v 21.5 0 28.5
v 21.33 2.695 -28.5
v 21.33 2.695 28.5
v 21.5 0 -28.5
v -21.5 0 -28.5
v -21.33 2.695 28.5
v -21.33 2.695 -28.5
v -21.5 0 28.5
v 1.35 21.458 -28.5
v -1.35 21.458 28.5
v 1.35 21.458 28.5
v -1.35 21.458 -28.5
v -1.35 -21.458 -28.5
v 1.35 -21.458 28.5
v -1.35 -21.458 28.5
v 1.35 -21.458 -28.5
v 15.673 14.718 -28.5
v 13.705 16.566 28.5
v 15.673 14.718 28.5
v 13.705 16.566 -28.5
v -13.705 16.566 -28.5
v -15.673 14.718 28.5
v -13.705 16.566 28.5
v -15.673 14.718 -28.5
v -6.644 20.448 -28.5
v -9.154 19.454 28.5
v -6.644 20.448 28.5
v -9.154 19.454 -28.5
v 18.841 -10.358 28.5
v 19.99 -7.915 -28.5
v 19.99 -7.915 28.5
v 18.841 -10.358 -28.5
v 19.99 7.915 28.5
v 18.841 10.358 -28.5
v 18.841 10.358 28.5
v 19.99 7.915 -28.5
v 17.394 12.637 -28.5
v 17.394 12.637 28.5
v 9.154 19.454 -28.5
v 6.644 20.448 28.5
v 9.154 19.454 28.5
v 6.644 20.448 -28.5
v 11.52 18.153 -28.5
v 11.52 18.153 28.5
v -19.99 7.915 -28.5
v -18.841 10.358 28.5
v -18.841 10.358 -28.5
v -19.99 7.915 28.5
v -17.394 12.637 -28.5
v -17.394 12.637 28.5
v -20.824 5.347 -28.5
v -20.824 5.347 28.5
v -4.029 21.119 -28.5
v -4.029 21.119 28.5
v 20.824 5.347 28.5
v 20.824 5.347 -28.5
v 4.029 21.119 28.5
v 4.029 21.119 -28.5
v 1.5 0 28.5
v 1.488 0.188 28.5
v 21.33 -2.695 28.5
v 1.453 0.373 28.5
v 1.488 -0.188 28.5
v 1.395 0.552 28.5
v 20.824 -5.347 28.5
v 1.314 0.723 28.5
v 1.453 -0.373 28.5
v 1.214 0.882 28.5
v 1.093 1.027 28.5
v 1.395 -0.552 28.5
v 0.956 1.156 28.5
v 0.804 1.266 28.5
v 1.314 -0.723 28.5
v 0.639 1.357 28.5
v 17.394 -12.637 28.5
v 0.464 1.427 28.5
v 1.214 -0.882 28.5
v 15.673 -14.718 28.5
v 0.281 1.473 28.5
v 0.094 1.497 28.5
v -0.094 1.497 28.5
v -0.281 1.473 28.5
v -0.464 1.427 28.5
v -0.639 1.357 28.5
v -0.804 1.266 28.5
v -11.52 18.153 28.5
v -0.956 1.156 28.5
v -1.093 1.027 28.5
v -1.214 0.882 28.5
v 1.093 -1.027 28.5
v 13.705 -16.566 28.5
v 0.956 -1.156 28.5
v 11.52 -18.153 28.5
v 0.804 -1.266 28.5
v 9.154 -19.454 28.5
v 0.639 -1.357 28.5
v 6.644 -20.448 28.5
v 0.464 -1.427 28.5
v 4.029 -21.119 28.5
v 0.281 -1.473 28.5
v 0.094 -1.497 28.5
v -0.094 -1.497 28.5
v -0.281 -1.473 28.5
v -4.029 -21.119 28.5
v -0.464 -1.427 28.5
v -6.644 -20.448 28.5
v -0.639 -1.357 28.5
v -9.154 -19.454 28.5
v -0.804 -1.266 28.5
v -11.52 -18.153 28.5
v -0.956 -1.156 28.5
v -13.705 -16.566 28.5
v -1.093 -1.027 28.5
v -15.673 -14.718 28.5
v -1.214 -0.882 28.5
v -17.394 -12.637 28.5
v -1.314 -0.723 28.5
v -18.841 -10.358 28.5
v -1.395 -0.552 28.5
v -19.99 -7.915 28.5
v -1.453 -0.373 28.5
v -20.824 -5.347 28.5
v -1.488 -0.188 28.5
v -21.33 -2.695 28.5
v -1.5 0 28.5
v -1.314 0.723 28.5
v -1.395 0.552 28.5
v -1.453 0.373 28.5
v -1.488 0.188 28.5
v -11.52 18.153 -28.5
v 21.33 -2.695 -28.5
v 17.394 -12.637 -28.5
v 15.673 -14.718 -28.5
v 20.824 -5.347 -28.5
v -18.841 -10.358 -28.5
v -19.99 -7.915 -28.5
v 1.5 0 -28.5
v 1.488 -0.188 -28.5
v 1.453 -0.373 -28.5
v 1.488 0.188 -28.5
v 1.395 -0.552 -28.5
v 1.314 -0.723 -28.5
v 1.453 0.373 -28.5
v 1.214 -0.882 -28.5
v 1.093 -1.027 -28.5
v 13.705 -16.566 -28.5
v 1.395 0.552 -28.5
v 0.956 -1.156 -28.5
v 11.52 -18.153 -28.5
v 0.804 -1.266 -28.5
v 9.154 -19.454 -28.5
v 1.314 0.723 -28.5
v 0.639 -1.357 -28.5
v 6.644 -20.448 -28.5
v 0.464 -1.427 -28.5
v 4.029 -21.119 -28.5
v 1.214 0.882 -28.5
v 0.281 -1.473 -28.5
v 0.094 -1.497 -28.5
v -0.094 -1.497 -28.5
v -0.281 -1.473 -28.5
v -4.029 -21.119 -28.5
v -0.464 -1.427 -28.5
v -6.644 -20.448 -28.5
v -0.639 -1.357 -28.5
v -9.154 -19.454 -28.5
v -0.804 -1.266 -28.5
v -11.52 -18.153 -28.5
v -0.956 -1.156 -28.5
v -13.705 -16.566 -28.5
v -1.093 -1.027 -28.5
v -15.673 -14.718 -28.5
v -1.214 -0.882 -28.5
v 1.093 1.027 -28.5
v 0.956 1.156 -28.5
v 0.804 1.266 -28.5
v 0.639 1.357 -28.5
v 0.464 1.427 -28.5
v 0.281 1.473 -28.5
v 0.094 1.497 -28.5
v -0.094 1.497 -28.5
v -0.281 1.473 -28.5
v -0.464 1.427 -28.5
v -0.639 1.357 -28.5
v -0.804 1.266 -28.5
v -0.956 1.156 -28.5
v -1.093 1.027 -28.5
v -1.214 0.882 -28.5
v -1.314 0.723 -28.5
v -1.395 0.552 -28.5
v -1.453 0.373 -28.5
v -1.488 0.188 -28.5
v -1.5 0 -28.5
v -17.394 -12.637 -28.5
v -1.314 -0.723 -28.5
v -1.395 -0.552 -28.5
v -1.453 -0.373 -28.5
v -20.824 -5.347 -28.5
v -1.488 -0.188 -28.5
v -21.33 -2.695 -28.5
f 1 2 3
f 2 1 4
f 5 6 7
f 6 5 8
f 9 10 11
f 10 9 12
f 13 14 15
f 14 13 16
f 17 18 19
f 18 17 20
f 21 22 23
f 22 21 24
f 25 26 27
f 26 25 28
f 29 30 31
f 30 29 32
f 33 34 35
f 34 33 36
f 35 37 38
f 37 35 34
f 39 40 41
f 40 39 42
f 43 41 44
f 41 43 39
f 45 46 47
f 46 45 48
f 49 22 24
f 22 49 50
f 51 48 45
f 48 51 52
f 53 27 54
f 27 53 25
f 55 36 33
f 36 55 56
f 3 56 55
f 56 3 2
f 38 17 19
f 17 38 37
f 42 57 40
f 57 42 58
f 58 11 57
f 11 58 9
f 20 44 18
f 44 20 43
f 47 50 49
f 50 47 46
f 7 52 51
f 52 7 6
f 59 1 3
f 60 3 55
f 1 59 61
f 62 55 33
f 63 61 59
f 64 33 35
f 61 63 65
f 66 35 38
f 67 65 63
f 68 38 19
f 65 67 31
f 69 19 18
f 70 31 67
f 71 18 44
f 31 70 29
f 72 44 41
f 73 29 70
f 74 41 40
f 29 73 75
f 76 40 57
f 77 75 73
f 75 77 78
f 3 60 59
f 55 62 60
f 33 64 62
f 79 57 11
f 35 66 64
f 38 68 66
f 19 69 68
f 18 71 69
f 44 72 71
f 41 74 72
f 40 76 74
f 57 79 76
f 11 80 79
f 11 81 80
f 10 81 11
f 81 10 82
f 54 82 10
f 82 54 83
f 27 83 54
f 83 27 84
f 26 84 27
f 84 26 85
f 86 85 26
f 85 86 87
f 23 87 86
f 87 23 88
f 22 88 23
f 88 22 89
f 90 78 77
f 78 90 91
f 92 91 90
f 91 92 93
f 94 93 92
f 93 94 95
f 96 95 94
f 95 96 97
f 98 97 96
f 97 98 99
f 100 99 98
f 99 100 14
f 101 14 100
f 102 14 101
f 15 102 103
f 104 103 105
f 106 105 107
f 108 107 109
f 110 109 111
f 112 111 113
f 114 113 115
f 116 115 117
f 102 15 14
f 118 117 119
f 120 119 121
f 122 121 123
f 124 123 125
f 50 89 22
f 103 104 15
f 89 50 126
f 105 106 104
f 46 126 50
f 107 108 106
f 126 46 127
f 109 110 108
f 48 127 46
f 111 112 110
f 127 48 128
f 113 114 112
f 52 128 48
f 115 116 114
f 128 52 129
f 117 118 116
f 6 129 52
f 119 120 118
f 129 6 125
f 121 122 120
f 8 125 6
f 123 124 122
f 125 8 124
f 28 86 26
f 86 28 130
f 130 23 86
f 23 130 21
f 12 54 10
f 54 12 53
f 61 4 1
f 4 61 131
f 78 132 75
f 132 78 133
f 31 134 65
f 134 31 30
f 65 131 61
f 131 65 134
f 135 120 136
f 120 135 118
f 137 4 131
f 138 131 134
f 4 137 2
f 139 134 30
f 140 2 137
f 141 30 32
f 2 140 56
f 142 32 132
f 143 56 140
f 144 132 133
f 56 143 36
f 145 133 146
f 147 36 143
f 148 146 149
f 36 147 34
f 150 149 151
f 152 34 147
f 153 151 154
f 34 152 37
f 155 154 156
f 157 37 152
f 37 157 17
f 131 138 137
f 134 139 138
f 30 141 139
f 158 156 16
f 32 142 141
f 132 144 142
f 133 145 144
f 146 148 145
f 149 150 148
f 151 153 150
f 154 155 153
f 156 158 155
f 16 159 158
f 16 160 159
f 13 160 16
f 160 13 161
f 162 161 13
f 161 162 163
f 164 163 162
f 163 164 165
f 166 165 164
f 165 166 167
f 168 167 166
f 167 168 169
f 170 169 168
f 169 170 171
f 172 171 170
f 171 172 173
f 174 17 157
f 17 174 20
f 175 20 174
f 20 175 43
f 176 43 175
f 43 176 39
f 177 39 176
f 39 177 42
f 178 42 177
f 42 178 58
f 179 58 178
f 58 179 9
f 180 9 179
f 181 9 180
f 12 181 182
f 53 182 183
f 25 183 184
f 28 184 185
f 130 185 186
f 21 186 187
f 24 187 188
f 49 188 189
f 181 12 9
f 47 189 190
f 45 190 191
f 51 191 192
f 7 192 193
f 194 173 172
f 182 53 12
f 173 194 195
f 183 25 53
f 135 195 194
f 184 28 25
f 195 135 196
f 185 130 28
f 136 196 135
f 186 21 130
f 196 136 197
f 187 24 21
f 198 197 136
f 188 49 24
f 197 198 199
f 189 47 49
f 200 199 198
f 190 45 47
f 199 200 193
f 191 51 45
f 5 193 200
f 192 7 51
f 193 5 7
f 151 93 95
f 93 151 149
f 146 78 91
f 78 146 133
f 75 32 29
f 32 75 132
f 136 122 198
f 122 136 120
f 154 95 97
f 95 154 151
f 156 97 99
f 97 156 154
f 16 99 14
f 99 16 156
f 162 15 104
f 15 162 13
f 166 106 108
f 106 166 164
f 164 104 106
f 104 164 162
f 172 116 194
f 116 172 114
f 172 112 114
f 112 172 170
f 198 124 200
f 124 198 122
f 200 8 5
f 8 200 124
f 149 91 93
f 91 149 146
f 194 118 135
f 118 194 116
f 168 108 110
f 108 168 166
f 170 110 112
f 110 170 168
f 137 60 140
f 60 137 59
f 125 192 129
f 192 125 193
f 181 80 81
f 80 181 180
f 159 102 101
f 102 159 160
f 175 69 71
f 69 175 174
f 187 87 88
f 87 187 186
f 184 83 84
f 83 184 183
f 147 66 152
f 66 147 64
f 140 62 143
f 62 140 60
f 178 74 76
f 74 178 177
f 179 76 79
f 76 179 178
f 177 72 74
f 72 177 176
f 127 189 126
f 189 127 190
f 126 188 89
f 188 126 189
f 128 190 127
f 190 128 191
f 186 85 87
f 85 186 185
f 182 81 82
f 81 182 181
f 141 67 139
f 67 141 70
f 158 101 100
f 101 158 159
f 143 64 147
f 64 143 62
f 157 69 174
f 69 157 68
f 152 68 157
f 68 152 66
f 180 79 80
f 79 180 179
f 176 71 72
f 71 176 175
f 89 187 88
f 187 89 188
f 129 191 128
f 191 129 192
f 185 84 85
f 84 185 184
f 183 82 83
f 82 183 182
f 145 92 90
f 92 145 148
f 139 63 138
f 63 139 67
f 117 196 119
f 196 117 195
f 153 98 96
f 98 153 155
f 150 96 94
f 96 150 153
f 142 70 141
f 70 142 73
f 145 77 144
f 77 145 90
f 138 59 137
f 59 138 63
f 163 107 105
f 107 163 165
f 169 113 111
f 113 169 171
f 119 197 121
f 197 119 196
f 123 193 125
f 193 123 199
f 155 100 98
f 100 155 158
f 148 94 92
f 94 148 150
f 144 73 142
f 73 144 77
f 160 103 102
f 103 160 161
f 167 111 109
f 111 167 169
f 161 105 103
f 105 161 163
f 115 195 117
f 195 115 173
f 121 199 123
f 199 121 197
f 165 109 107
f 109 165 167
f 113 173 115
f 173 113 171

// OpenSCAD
$fn = 50;


difference() {
	union() {
		translate(v = [0, 0, -28.5000000000]) {
			cylinder(h = 57, r = 21.5000000000);
		}
	}
	union() {
		translate(v = [0, 0, -100.0000000000]) {
			cylinder(h = 200, r = 1.5000000000);
		}
	}
}
